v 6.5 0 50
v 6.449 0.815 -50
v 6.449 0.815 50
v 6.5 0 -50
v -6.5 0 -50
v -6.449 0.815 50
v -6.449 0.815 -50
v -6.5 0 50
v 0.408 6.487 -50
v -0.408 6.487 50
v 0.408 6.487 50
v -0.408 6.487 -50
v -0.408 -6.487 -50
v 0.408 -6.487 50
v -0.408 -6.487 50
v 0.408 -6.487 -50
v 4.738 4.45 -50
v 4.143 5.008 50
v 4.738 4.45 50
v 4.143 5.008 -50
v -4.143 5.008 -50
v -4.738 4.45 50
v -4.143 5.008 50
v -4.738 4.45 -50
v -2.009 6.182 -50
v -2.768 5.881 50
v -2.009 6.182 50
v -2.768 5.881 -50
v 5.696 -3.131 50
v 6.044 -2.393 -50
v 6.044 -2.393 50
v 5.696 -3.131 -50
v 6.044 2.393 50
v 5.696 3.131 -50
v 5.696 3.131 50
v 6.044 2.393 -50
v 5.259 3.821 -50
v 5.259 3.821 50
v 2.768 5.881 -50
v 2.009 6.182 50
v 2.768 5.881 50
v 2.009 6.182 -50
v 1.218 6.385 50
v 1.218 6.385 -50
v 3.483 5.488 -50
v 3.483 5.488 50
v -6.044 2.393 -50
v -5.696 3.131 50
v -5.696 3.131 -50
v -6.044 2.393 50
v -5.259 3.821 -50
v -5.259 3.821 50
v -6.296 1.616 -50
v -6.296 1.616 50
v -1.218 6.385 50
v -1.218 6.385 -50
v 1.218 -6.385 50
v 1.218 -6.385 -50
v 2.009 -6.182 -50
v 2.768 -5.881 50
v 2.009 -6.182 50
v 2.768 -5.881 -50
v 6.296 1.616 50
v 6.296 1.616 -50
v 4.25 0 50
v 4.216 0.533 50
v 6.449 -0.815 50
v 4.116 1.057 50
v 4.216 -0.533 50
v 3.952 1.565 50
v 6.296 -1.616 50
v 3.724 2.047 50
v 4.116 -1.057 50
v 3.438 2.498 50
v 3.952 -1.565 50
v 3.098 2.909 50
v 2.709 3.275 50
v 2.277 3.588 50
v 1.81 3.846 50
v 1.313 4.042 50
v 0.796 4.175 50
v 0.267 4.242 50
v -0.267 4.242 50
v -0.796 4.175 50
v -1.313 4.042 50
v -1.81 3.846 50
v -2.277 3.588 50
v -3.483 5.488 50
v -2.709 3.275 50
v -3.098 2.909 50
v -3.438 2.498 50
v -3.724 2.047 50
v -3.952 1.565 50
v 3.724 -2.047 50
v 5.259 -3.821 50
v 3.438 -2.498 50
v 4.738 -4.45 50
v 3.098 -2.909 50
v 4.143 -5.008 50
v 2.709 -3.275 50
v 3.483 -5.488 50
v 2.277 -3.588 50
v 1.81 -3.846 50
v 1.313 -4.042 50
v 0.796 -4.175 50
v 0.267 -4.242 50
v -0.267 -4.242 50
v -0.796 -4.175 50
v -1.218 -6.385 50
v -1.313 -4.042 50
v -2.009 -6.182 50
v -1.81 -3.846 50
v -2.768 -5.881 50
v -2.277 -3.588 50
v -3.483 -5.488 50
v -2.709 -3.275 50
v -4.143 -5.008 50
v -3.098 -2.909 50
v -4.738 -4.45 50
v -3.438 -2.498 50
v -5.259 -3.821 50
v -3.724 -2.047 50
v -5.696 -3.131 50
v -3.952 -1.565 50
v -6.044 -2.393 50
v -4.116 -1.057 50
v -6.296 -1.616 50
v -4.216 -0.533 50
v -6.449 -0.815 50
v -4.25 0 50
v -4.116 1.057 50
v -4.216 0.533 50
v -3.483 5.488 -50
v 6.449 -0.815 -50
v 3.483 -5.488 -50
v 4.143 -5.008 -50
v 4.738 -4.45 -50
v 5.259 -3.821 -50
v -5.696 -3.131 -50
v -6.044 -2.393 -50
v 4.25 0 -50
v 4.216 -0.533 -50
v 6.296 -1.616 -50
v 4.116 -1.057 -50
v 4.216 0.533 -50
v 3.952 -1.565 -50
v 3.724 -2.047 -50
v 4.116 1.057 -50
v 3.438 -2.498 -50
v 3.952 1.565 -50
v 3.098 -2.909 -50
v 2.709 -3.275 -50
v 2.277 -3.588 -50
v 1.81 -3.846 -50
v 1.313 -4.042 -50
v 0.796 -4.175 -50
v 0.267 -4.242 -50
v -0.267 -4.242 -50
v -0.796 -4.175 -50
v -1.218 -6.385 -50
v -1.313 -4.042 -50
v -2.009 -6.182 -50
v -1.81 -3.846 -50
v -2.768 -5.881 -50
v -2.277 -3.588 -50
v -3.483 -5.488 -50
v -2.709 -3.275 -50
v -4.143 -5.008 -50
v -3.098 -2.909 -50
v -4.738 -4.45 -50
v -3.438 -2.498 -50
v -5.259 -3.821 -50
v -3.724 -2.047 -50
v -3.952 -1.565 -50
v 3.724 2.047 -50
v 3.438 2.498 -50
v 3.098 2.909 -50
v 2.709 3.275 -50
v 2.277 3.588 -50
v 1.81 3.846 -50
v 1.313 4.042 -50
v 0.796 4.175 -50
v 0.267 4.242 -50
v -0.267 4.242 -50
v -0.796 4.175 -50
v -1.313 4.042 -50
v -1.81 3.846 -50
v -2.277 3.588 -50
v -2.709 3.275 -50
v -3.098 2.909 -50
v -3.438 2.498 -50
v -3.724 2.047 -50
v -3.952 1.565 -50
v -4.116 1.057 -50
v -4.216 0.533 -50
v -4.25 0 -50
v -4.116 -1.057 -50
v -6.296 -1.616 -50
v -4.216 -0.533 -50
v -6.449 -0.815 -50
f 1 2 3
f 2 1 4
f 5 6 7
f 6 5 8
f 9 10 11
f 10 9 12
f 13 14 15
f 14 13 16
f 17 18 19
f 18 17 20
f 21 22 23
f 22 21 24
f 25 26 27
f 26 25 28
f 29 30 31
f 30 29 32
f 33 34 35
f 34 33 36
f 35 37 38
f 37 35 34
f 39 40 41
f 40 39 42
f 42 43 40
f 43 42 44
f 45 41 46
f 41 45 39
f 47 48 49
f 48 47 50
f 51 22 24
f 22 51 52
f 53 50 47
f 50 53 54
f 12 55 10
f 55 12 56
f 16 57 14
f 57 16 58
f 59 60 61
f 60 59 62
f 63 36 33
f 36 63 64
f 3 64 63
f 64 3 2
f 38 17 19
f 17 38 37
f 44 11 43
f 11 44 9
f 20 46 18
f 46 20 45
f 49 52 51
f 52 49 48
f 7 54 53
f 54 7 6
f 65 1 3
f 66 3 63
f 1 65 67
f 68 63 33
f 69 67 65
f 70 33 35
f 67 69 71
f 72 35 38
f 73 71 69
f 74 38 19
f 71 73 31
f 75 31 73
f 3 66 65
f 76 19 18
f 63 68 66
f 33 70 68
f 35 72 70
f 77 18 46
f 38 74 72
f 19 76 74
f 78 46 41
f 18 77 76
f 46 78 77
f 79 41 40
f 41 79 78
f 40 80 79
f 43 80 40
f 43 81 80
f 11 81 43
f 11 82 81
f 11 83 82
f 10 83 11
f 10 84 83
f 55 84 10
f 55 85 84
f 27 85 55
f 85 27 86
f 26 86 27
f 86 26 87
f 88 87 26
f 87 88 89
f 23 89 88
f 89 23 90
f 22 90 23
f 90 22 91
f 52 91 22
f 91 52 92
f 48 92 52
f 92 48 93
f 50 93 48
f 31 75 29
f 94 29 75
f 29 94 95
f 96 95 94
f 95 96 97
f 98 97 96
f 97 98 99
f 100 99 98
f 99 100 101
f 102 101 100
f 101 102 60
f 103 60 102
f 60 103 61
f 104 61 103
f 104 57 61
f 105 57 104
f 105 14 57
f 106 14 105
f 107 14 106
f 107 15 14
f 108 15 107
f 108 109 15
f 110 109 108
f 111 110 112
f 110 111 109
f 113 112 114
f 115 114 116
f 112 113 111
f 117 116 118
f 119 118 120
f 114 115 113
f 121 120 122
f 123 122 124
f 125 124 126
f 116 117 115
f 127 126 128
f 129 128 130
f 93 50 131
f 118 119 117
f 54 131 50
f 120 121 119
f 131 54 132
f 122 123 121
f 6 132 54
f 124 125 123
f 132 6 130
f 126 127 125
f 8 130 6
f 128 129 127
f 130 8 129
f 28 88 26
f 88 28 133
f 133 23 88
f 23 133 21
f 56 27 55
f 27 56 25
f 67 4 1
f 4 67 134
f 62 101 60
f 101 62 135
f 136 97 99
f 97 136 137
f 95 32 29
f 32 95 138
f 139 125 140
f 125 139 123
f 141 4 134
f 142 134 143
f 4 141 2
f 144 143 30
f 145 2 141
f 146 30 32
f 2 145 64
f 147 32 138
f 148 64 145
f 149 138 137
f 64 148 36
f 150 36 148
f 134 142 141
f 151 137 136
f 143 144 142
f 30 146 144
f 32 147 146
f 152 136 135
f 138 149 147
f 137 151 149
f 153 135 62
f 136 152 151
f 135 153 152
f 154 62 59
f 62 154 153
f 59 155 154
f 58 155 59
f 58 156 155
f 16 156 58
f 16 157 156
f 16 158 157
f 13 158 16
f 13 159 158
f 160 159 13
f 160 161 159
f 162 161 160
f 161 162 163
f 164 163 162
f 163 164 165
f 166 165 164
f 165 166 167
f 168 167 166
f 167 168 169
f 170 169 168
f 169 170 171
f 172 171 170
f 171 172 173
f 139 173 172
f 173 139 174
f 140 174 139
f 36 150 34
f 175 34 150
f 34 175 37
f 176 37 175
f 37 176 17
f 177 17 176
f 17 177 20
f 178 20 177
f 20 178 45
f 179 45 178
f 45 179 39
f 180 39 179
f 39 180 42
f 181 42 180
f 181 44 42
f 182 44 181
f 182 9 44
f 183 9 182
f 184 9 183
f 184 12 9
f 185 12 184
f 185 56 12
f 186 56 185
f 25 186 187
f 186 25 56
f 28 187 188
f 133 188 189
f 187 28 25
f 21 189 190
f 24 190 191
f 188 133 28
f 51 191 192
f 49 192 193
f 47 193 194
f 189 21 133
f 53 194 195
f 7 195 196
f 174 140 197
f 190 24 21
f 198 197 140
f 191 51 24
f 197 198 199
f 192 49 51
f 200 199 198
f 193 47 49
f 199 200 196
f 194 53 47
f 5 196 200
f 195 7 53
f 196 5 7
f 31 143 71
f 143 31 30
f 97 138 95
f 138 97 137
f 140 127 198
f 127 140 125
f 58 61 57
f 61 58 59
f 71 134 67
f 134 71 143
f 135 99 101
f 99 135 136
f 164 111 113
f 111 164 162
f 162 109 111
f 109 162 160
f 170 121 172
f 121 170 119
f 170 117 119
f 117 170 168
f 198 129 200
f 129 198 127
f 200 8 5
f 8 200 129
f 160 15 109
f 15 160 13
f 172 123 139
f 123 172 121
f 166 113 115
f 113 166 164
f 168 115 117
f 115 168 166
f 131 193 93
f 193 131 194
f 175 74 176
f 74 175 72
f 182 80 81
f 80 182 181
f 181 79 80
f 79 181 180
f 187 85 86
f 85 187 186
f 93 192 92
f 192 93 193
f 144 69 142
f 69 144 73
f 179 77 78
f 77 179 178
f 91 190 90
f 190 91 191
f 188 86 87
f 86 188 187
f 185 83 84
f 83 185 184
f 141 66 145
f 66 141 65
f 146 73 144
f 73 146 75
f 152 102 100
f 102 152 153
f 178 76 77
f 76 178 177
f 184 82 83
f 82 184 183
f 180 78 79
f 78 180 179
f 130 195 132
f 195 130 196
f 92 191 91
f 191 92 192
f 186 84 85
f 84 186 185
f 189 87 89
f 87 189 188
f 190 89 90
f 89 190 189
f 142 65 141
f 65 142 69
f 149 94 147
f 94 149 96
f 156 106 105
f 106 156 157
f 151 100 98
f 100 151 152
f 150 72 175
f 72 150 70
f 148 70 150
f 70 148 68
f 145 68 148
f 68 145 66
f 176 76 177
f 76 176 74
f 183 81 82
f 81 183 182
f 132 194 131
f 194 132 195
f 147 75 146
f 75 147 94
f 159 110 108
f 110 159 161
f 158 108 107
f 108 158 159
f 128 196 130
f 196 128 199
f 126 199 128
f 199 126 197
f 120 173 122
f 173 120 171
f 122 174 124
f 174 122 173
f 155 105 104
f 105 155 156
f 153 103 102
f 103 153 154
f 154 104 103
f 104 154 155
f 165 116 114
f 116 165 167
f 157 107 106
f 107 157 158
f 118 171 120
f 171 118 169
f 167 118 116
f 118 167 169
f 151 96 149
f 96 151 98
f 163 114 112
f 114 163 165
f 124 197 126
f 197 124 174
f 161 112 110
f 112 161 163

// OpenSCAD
$fn = 50;


difference() {
	union() {
		translate(v = [0, 0, -50.0000000000]) {
			cylinder(h = 100, r = 6.5000000000);
		}
	}
	union() {
		translate(v = [0, 0, -100.0000000000]) {
			cylinder(h = 200, r = 4.2500000000);
		}
	}
}
